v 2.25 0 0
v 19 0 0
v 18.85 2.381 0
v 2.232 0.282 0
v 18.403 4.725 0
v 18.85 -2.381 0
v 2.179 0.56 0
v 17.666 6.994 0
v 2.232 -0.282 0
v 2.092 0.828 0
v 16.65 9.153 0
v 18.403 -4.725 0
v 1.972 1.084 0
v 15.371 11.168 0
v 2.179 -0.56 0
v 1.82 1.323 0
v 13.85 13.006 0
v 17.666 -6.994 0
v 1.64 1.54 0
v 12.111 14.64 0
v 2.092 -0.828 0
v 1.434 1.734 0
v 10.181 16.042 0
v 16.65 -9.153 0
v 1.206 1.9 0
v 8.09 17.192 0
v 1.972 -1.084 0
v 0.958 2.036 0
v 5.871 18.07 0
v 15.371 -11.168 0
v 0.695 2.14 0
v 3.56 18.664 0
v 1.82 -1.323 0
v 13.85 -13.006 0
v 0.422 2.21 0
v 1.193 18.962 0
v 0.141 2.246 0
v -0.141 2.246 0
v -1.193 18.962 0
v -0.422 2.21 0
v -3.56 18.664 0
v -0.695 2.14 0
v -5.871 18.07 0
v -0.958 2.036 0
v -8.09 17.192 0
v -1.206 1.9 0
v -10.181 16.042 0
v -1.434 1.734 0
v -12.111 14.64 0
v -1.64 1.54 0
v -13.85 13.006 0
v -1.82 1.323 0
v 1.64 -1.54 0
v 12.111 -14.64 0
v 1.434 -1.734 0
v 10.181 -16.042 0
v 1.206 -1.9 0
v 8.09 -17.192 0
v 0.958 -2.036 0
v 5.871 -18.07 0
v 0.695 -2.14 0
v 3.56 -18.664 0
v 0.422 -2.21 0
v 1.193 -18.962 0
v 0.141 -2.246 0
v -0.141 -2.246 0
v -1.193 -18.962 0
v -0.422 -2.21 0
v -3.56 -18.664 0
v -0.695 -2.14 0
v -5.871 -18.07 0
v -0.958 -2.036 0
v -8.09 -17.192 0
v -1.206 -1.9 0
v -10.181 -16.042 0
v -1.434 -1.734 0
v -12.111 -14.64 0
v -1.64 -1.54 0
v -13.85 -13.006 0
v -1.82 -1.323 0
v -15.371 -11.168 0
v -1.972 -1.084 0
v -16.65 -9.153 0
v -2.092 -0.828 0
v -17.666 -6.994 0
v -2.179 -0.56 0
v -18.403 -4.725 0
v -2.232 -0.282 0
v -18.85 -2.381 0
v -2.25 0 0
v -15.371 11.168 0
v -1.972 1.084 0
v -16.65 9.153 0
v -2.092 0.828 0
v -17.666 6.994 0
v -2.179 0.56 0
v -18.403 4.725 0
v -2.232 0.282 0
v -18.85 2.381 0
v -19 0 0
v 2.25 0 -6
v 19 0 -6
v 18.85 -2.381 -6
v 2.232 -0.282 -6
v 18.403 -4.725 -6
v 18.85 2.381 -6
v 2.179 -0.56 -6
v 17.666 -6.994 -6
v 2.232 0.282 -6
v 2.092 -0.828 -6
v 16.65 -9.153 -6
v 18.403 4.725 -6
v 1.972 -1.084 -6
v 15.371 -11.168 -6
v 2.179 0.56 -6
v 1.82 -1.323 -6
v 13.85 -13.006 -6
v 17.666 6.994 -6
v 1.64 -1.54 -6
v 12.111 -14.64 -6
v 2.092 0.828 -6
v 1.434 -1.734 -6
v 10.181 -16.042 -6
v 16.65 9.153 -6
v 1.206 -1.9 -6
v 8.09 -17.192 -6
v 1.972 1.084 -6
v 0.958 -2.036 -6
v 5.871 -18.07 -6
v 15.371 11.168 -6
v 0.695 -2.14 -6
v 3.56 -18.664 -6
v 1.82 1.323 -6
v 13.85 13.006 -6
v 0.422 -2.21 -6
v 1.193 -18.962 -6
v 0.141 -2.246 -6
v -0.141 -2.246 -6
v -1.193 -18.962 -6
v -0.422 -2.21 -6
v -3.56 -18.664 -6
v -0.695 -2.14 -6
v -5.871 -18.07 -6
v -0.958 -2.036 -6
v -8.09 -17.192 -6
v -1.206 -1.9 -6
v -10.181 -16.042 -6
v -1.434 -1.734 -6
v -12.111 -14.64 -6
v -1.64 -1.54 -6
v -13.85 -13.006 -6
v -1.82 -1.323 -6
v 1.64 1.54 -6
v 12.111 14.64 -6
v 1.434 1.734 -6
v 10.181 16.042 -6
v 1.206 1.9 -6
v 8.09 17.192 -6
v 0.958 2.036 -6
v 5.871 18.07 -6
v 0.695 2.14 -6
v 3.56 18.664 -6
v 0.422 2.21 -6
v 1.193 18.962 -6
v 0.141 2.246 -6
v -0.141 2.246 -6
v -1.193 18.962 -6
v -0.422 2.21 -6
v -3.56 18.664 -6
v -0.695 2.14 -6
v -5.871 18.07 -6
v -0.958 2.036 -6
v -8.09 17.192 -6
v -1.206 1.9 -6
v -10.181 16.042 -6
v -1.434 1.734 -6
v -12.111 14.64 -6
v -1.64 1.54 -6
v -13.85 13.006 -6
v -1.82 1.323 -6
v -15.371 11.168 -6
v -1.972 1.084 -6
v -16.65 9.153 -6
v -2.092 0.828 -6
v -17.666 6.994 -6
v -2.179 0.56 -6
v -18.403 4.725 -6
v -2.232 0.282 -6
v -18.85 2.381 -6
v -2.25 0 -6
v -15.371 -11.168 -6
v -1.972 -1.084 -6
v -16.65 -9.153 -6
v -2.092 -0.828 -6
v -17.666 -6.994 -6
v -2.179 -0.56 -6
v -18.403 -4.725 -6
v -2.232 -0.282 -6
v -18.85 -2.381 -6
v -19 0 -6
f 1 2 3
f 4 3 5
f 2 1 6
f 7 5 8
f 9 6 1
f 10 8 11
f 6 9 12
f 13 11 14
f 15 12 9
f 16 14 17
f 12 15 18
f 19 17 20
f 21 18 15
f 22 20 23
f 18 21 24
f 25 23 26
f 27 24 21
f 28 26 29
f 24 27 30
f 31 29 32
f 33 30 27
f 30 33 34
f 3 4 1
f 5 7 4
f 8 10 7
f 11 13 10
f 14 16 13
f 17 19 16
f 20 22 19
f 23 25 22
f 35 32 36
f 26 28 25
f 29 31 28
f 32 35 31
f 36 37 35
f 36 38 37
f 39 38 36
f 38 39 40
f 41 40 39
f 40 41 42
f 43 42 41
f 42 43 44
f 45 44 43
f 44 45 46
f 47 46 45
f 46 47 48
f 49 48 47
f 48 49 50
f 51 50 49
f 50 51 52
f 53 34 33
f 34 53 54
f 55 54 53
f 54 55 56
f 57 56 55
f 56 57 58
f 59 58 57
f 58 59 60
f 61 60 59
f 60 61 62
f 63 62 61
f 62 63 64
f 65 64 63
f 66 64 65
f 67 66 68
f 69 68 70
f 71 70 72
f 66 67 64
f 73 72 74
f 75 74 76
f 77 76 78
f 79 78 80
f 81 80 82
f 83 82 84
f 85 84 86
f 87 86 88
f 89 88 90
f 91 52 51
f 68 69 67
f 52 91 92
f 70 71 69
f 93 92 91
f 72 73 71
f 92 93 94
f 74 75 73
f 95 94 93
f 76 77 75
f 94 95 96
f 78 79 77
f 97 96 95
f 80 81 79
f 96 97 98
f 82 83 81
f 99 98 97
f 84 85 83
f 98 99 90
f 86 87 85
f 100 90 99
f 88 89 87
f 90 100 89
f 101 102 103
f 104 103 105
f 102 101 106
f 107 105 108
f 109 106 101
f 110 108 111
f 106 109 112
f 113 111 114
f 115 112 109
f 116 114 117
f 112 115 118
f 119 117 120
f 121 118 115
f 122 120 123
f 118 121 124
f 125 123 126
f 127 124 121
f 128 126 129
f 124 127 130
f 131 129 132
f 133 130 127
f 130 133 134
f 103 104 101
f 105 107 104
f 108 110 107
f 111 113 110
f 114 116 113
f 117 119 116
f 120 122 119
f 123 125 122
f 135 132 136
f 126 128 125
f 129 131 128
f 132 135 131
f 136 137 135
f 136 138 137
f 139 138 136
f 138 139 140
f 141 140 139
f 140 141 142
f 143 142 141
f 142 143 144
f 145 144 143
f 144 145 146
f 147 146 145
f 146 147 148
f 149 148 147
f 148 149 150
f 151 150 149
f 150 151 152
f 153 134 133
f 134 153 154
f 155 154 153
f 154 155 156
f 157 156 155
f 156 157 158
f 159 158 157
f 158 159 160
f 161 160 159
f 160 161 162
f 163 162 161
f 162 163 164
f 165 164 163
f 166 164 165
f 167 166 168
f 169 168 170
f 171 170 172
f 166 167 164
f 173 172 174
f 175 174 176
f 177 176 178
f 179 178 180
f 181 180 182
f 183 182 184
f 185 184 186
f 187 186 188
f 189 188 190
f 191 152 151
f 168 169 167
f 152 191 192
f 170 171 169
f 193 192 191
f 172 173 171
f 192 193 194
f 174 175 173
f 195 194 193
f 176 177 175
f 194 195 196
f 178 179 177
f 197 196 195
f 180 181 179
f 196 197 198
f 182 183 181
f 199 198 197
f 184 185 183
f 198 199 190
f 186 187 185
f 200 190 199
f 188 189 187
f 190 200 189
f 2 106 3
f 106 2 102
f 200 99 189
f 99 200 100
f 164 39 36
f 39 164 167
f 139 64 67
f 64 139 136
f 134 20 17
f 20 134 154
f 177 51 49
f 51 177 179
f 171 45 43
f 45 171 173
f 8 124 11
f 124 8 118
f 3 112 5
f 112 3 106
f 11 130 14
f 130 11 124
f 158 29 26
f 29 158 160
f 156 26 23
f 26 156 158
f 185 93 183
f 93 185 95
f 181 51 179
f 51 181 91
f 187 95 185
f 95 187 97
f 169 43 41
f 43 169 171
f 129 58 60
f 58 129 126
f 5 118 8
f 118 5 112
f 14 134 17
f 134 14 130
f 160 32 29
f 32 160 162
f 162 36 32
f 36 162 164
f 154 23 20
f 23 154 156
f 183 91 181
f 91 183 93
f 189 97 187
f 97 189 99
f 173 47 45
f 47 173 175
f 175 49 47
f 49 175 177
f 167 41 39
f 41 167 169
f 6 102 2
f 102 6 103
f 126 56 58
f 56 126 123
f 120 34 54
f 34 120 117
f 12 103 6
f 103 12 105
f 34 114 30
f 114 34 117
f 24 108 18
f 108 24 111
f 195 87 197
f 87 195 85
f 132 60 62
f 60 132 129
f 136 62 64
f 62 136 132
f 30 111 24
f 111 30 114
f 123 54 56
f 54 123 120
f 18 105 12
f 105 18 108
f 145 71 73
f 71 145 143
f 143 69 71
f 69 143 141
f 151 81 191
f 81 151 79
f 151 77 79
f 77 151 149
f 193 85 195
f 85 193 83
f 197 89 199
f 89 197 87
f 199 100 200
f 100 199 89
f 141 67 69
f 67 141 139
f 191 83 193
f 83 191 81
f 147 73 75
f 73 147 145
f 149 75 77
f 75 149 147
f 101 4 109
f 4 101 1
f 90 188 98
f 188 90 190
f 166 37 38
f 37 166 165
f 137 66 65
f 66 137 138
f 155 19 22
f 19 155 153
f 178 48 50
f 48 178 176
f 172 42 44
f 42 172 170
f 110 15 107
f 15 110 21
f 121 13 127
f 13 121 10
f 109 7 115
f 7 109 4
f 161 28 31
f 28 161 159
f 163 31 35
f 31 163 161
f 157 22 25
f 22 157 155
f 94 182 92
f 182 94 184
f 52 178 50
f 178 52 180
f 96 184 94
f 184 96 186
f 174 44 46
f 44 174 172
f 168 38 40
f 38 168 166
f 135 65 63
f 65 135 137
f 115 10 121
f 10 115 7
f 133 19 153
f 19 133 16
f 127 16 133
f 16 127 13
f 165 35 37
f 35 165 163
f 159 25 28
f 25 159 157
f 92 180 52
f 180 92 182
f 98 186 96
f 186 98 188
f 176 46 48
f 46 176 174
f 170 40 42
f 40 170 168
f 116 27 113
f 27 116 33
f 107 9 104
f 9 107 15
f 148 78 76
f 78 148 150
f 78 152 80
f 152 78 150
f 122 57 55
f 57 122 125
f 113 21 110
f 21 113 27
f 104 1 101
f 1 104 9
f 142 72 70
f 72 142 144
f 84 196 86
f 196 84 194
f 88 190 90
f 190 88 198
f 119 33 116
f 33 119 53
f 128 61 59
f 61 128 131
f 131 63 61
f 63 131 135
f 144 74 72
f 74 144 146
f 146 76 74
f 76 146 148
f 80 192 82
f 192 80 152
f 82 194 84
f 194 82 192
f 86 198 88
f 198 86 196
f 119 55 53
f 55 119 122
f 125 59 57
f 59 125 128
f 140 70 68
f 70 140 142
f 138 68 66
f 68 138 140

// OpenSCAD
$fn = 50;


difference() {
	union() {
		translate(v = [0, 0, -6.0000000000]) {
			cylinder(h = 6, r = 10.0000000000);
		}
		translate(v = [0, 0, -6.0000000000]) {
			cylinder(h = 6, r = 19.0000000000);
		}
	}
	union() {
		#translate(v = [0, 0, -6]) {
			cylinder(h = 6, r = 2.2500000000);
		}
	}
}
